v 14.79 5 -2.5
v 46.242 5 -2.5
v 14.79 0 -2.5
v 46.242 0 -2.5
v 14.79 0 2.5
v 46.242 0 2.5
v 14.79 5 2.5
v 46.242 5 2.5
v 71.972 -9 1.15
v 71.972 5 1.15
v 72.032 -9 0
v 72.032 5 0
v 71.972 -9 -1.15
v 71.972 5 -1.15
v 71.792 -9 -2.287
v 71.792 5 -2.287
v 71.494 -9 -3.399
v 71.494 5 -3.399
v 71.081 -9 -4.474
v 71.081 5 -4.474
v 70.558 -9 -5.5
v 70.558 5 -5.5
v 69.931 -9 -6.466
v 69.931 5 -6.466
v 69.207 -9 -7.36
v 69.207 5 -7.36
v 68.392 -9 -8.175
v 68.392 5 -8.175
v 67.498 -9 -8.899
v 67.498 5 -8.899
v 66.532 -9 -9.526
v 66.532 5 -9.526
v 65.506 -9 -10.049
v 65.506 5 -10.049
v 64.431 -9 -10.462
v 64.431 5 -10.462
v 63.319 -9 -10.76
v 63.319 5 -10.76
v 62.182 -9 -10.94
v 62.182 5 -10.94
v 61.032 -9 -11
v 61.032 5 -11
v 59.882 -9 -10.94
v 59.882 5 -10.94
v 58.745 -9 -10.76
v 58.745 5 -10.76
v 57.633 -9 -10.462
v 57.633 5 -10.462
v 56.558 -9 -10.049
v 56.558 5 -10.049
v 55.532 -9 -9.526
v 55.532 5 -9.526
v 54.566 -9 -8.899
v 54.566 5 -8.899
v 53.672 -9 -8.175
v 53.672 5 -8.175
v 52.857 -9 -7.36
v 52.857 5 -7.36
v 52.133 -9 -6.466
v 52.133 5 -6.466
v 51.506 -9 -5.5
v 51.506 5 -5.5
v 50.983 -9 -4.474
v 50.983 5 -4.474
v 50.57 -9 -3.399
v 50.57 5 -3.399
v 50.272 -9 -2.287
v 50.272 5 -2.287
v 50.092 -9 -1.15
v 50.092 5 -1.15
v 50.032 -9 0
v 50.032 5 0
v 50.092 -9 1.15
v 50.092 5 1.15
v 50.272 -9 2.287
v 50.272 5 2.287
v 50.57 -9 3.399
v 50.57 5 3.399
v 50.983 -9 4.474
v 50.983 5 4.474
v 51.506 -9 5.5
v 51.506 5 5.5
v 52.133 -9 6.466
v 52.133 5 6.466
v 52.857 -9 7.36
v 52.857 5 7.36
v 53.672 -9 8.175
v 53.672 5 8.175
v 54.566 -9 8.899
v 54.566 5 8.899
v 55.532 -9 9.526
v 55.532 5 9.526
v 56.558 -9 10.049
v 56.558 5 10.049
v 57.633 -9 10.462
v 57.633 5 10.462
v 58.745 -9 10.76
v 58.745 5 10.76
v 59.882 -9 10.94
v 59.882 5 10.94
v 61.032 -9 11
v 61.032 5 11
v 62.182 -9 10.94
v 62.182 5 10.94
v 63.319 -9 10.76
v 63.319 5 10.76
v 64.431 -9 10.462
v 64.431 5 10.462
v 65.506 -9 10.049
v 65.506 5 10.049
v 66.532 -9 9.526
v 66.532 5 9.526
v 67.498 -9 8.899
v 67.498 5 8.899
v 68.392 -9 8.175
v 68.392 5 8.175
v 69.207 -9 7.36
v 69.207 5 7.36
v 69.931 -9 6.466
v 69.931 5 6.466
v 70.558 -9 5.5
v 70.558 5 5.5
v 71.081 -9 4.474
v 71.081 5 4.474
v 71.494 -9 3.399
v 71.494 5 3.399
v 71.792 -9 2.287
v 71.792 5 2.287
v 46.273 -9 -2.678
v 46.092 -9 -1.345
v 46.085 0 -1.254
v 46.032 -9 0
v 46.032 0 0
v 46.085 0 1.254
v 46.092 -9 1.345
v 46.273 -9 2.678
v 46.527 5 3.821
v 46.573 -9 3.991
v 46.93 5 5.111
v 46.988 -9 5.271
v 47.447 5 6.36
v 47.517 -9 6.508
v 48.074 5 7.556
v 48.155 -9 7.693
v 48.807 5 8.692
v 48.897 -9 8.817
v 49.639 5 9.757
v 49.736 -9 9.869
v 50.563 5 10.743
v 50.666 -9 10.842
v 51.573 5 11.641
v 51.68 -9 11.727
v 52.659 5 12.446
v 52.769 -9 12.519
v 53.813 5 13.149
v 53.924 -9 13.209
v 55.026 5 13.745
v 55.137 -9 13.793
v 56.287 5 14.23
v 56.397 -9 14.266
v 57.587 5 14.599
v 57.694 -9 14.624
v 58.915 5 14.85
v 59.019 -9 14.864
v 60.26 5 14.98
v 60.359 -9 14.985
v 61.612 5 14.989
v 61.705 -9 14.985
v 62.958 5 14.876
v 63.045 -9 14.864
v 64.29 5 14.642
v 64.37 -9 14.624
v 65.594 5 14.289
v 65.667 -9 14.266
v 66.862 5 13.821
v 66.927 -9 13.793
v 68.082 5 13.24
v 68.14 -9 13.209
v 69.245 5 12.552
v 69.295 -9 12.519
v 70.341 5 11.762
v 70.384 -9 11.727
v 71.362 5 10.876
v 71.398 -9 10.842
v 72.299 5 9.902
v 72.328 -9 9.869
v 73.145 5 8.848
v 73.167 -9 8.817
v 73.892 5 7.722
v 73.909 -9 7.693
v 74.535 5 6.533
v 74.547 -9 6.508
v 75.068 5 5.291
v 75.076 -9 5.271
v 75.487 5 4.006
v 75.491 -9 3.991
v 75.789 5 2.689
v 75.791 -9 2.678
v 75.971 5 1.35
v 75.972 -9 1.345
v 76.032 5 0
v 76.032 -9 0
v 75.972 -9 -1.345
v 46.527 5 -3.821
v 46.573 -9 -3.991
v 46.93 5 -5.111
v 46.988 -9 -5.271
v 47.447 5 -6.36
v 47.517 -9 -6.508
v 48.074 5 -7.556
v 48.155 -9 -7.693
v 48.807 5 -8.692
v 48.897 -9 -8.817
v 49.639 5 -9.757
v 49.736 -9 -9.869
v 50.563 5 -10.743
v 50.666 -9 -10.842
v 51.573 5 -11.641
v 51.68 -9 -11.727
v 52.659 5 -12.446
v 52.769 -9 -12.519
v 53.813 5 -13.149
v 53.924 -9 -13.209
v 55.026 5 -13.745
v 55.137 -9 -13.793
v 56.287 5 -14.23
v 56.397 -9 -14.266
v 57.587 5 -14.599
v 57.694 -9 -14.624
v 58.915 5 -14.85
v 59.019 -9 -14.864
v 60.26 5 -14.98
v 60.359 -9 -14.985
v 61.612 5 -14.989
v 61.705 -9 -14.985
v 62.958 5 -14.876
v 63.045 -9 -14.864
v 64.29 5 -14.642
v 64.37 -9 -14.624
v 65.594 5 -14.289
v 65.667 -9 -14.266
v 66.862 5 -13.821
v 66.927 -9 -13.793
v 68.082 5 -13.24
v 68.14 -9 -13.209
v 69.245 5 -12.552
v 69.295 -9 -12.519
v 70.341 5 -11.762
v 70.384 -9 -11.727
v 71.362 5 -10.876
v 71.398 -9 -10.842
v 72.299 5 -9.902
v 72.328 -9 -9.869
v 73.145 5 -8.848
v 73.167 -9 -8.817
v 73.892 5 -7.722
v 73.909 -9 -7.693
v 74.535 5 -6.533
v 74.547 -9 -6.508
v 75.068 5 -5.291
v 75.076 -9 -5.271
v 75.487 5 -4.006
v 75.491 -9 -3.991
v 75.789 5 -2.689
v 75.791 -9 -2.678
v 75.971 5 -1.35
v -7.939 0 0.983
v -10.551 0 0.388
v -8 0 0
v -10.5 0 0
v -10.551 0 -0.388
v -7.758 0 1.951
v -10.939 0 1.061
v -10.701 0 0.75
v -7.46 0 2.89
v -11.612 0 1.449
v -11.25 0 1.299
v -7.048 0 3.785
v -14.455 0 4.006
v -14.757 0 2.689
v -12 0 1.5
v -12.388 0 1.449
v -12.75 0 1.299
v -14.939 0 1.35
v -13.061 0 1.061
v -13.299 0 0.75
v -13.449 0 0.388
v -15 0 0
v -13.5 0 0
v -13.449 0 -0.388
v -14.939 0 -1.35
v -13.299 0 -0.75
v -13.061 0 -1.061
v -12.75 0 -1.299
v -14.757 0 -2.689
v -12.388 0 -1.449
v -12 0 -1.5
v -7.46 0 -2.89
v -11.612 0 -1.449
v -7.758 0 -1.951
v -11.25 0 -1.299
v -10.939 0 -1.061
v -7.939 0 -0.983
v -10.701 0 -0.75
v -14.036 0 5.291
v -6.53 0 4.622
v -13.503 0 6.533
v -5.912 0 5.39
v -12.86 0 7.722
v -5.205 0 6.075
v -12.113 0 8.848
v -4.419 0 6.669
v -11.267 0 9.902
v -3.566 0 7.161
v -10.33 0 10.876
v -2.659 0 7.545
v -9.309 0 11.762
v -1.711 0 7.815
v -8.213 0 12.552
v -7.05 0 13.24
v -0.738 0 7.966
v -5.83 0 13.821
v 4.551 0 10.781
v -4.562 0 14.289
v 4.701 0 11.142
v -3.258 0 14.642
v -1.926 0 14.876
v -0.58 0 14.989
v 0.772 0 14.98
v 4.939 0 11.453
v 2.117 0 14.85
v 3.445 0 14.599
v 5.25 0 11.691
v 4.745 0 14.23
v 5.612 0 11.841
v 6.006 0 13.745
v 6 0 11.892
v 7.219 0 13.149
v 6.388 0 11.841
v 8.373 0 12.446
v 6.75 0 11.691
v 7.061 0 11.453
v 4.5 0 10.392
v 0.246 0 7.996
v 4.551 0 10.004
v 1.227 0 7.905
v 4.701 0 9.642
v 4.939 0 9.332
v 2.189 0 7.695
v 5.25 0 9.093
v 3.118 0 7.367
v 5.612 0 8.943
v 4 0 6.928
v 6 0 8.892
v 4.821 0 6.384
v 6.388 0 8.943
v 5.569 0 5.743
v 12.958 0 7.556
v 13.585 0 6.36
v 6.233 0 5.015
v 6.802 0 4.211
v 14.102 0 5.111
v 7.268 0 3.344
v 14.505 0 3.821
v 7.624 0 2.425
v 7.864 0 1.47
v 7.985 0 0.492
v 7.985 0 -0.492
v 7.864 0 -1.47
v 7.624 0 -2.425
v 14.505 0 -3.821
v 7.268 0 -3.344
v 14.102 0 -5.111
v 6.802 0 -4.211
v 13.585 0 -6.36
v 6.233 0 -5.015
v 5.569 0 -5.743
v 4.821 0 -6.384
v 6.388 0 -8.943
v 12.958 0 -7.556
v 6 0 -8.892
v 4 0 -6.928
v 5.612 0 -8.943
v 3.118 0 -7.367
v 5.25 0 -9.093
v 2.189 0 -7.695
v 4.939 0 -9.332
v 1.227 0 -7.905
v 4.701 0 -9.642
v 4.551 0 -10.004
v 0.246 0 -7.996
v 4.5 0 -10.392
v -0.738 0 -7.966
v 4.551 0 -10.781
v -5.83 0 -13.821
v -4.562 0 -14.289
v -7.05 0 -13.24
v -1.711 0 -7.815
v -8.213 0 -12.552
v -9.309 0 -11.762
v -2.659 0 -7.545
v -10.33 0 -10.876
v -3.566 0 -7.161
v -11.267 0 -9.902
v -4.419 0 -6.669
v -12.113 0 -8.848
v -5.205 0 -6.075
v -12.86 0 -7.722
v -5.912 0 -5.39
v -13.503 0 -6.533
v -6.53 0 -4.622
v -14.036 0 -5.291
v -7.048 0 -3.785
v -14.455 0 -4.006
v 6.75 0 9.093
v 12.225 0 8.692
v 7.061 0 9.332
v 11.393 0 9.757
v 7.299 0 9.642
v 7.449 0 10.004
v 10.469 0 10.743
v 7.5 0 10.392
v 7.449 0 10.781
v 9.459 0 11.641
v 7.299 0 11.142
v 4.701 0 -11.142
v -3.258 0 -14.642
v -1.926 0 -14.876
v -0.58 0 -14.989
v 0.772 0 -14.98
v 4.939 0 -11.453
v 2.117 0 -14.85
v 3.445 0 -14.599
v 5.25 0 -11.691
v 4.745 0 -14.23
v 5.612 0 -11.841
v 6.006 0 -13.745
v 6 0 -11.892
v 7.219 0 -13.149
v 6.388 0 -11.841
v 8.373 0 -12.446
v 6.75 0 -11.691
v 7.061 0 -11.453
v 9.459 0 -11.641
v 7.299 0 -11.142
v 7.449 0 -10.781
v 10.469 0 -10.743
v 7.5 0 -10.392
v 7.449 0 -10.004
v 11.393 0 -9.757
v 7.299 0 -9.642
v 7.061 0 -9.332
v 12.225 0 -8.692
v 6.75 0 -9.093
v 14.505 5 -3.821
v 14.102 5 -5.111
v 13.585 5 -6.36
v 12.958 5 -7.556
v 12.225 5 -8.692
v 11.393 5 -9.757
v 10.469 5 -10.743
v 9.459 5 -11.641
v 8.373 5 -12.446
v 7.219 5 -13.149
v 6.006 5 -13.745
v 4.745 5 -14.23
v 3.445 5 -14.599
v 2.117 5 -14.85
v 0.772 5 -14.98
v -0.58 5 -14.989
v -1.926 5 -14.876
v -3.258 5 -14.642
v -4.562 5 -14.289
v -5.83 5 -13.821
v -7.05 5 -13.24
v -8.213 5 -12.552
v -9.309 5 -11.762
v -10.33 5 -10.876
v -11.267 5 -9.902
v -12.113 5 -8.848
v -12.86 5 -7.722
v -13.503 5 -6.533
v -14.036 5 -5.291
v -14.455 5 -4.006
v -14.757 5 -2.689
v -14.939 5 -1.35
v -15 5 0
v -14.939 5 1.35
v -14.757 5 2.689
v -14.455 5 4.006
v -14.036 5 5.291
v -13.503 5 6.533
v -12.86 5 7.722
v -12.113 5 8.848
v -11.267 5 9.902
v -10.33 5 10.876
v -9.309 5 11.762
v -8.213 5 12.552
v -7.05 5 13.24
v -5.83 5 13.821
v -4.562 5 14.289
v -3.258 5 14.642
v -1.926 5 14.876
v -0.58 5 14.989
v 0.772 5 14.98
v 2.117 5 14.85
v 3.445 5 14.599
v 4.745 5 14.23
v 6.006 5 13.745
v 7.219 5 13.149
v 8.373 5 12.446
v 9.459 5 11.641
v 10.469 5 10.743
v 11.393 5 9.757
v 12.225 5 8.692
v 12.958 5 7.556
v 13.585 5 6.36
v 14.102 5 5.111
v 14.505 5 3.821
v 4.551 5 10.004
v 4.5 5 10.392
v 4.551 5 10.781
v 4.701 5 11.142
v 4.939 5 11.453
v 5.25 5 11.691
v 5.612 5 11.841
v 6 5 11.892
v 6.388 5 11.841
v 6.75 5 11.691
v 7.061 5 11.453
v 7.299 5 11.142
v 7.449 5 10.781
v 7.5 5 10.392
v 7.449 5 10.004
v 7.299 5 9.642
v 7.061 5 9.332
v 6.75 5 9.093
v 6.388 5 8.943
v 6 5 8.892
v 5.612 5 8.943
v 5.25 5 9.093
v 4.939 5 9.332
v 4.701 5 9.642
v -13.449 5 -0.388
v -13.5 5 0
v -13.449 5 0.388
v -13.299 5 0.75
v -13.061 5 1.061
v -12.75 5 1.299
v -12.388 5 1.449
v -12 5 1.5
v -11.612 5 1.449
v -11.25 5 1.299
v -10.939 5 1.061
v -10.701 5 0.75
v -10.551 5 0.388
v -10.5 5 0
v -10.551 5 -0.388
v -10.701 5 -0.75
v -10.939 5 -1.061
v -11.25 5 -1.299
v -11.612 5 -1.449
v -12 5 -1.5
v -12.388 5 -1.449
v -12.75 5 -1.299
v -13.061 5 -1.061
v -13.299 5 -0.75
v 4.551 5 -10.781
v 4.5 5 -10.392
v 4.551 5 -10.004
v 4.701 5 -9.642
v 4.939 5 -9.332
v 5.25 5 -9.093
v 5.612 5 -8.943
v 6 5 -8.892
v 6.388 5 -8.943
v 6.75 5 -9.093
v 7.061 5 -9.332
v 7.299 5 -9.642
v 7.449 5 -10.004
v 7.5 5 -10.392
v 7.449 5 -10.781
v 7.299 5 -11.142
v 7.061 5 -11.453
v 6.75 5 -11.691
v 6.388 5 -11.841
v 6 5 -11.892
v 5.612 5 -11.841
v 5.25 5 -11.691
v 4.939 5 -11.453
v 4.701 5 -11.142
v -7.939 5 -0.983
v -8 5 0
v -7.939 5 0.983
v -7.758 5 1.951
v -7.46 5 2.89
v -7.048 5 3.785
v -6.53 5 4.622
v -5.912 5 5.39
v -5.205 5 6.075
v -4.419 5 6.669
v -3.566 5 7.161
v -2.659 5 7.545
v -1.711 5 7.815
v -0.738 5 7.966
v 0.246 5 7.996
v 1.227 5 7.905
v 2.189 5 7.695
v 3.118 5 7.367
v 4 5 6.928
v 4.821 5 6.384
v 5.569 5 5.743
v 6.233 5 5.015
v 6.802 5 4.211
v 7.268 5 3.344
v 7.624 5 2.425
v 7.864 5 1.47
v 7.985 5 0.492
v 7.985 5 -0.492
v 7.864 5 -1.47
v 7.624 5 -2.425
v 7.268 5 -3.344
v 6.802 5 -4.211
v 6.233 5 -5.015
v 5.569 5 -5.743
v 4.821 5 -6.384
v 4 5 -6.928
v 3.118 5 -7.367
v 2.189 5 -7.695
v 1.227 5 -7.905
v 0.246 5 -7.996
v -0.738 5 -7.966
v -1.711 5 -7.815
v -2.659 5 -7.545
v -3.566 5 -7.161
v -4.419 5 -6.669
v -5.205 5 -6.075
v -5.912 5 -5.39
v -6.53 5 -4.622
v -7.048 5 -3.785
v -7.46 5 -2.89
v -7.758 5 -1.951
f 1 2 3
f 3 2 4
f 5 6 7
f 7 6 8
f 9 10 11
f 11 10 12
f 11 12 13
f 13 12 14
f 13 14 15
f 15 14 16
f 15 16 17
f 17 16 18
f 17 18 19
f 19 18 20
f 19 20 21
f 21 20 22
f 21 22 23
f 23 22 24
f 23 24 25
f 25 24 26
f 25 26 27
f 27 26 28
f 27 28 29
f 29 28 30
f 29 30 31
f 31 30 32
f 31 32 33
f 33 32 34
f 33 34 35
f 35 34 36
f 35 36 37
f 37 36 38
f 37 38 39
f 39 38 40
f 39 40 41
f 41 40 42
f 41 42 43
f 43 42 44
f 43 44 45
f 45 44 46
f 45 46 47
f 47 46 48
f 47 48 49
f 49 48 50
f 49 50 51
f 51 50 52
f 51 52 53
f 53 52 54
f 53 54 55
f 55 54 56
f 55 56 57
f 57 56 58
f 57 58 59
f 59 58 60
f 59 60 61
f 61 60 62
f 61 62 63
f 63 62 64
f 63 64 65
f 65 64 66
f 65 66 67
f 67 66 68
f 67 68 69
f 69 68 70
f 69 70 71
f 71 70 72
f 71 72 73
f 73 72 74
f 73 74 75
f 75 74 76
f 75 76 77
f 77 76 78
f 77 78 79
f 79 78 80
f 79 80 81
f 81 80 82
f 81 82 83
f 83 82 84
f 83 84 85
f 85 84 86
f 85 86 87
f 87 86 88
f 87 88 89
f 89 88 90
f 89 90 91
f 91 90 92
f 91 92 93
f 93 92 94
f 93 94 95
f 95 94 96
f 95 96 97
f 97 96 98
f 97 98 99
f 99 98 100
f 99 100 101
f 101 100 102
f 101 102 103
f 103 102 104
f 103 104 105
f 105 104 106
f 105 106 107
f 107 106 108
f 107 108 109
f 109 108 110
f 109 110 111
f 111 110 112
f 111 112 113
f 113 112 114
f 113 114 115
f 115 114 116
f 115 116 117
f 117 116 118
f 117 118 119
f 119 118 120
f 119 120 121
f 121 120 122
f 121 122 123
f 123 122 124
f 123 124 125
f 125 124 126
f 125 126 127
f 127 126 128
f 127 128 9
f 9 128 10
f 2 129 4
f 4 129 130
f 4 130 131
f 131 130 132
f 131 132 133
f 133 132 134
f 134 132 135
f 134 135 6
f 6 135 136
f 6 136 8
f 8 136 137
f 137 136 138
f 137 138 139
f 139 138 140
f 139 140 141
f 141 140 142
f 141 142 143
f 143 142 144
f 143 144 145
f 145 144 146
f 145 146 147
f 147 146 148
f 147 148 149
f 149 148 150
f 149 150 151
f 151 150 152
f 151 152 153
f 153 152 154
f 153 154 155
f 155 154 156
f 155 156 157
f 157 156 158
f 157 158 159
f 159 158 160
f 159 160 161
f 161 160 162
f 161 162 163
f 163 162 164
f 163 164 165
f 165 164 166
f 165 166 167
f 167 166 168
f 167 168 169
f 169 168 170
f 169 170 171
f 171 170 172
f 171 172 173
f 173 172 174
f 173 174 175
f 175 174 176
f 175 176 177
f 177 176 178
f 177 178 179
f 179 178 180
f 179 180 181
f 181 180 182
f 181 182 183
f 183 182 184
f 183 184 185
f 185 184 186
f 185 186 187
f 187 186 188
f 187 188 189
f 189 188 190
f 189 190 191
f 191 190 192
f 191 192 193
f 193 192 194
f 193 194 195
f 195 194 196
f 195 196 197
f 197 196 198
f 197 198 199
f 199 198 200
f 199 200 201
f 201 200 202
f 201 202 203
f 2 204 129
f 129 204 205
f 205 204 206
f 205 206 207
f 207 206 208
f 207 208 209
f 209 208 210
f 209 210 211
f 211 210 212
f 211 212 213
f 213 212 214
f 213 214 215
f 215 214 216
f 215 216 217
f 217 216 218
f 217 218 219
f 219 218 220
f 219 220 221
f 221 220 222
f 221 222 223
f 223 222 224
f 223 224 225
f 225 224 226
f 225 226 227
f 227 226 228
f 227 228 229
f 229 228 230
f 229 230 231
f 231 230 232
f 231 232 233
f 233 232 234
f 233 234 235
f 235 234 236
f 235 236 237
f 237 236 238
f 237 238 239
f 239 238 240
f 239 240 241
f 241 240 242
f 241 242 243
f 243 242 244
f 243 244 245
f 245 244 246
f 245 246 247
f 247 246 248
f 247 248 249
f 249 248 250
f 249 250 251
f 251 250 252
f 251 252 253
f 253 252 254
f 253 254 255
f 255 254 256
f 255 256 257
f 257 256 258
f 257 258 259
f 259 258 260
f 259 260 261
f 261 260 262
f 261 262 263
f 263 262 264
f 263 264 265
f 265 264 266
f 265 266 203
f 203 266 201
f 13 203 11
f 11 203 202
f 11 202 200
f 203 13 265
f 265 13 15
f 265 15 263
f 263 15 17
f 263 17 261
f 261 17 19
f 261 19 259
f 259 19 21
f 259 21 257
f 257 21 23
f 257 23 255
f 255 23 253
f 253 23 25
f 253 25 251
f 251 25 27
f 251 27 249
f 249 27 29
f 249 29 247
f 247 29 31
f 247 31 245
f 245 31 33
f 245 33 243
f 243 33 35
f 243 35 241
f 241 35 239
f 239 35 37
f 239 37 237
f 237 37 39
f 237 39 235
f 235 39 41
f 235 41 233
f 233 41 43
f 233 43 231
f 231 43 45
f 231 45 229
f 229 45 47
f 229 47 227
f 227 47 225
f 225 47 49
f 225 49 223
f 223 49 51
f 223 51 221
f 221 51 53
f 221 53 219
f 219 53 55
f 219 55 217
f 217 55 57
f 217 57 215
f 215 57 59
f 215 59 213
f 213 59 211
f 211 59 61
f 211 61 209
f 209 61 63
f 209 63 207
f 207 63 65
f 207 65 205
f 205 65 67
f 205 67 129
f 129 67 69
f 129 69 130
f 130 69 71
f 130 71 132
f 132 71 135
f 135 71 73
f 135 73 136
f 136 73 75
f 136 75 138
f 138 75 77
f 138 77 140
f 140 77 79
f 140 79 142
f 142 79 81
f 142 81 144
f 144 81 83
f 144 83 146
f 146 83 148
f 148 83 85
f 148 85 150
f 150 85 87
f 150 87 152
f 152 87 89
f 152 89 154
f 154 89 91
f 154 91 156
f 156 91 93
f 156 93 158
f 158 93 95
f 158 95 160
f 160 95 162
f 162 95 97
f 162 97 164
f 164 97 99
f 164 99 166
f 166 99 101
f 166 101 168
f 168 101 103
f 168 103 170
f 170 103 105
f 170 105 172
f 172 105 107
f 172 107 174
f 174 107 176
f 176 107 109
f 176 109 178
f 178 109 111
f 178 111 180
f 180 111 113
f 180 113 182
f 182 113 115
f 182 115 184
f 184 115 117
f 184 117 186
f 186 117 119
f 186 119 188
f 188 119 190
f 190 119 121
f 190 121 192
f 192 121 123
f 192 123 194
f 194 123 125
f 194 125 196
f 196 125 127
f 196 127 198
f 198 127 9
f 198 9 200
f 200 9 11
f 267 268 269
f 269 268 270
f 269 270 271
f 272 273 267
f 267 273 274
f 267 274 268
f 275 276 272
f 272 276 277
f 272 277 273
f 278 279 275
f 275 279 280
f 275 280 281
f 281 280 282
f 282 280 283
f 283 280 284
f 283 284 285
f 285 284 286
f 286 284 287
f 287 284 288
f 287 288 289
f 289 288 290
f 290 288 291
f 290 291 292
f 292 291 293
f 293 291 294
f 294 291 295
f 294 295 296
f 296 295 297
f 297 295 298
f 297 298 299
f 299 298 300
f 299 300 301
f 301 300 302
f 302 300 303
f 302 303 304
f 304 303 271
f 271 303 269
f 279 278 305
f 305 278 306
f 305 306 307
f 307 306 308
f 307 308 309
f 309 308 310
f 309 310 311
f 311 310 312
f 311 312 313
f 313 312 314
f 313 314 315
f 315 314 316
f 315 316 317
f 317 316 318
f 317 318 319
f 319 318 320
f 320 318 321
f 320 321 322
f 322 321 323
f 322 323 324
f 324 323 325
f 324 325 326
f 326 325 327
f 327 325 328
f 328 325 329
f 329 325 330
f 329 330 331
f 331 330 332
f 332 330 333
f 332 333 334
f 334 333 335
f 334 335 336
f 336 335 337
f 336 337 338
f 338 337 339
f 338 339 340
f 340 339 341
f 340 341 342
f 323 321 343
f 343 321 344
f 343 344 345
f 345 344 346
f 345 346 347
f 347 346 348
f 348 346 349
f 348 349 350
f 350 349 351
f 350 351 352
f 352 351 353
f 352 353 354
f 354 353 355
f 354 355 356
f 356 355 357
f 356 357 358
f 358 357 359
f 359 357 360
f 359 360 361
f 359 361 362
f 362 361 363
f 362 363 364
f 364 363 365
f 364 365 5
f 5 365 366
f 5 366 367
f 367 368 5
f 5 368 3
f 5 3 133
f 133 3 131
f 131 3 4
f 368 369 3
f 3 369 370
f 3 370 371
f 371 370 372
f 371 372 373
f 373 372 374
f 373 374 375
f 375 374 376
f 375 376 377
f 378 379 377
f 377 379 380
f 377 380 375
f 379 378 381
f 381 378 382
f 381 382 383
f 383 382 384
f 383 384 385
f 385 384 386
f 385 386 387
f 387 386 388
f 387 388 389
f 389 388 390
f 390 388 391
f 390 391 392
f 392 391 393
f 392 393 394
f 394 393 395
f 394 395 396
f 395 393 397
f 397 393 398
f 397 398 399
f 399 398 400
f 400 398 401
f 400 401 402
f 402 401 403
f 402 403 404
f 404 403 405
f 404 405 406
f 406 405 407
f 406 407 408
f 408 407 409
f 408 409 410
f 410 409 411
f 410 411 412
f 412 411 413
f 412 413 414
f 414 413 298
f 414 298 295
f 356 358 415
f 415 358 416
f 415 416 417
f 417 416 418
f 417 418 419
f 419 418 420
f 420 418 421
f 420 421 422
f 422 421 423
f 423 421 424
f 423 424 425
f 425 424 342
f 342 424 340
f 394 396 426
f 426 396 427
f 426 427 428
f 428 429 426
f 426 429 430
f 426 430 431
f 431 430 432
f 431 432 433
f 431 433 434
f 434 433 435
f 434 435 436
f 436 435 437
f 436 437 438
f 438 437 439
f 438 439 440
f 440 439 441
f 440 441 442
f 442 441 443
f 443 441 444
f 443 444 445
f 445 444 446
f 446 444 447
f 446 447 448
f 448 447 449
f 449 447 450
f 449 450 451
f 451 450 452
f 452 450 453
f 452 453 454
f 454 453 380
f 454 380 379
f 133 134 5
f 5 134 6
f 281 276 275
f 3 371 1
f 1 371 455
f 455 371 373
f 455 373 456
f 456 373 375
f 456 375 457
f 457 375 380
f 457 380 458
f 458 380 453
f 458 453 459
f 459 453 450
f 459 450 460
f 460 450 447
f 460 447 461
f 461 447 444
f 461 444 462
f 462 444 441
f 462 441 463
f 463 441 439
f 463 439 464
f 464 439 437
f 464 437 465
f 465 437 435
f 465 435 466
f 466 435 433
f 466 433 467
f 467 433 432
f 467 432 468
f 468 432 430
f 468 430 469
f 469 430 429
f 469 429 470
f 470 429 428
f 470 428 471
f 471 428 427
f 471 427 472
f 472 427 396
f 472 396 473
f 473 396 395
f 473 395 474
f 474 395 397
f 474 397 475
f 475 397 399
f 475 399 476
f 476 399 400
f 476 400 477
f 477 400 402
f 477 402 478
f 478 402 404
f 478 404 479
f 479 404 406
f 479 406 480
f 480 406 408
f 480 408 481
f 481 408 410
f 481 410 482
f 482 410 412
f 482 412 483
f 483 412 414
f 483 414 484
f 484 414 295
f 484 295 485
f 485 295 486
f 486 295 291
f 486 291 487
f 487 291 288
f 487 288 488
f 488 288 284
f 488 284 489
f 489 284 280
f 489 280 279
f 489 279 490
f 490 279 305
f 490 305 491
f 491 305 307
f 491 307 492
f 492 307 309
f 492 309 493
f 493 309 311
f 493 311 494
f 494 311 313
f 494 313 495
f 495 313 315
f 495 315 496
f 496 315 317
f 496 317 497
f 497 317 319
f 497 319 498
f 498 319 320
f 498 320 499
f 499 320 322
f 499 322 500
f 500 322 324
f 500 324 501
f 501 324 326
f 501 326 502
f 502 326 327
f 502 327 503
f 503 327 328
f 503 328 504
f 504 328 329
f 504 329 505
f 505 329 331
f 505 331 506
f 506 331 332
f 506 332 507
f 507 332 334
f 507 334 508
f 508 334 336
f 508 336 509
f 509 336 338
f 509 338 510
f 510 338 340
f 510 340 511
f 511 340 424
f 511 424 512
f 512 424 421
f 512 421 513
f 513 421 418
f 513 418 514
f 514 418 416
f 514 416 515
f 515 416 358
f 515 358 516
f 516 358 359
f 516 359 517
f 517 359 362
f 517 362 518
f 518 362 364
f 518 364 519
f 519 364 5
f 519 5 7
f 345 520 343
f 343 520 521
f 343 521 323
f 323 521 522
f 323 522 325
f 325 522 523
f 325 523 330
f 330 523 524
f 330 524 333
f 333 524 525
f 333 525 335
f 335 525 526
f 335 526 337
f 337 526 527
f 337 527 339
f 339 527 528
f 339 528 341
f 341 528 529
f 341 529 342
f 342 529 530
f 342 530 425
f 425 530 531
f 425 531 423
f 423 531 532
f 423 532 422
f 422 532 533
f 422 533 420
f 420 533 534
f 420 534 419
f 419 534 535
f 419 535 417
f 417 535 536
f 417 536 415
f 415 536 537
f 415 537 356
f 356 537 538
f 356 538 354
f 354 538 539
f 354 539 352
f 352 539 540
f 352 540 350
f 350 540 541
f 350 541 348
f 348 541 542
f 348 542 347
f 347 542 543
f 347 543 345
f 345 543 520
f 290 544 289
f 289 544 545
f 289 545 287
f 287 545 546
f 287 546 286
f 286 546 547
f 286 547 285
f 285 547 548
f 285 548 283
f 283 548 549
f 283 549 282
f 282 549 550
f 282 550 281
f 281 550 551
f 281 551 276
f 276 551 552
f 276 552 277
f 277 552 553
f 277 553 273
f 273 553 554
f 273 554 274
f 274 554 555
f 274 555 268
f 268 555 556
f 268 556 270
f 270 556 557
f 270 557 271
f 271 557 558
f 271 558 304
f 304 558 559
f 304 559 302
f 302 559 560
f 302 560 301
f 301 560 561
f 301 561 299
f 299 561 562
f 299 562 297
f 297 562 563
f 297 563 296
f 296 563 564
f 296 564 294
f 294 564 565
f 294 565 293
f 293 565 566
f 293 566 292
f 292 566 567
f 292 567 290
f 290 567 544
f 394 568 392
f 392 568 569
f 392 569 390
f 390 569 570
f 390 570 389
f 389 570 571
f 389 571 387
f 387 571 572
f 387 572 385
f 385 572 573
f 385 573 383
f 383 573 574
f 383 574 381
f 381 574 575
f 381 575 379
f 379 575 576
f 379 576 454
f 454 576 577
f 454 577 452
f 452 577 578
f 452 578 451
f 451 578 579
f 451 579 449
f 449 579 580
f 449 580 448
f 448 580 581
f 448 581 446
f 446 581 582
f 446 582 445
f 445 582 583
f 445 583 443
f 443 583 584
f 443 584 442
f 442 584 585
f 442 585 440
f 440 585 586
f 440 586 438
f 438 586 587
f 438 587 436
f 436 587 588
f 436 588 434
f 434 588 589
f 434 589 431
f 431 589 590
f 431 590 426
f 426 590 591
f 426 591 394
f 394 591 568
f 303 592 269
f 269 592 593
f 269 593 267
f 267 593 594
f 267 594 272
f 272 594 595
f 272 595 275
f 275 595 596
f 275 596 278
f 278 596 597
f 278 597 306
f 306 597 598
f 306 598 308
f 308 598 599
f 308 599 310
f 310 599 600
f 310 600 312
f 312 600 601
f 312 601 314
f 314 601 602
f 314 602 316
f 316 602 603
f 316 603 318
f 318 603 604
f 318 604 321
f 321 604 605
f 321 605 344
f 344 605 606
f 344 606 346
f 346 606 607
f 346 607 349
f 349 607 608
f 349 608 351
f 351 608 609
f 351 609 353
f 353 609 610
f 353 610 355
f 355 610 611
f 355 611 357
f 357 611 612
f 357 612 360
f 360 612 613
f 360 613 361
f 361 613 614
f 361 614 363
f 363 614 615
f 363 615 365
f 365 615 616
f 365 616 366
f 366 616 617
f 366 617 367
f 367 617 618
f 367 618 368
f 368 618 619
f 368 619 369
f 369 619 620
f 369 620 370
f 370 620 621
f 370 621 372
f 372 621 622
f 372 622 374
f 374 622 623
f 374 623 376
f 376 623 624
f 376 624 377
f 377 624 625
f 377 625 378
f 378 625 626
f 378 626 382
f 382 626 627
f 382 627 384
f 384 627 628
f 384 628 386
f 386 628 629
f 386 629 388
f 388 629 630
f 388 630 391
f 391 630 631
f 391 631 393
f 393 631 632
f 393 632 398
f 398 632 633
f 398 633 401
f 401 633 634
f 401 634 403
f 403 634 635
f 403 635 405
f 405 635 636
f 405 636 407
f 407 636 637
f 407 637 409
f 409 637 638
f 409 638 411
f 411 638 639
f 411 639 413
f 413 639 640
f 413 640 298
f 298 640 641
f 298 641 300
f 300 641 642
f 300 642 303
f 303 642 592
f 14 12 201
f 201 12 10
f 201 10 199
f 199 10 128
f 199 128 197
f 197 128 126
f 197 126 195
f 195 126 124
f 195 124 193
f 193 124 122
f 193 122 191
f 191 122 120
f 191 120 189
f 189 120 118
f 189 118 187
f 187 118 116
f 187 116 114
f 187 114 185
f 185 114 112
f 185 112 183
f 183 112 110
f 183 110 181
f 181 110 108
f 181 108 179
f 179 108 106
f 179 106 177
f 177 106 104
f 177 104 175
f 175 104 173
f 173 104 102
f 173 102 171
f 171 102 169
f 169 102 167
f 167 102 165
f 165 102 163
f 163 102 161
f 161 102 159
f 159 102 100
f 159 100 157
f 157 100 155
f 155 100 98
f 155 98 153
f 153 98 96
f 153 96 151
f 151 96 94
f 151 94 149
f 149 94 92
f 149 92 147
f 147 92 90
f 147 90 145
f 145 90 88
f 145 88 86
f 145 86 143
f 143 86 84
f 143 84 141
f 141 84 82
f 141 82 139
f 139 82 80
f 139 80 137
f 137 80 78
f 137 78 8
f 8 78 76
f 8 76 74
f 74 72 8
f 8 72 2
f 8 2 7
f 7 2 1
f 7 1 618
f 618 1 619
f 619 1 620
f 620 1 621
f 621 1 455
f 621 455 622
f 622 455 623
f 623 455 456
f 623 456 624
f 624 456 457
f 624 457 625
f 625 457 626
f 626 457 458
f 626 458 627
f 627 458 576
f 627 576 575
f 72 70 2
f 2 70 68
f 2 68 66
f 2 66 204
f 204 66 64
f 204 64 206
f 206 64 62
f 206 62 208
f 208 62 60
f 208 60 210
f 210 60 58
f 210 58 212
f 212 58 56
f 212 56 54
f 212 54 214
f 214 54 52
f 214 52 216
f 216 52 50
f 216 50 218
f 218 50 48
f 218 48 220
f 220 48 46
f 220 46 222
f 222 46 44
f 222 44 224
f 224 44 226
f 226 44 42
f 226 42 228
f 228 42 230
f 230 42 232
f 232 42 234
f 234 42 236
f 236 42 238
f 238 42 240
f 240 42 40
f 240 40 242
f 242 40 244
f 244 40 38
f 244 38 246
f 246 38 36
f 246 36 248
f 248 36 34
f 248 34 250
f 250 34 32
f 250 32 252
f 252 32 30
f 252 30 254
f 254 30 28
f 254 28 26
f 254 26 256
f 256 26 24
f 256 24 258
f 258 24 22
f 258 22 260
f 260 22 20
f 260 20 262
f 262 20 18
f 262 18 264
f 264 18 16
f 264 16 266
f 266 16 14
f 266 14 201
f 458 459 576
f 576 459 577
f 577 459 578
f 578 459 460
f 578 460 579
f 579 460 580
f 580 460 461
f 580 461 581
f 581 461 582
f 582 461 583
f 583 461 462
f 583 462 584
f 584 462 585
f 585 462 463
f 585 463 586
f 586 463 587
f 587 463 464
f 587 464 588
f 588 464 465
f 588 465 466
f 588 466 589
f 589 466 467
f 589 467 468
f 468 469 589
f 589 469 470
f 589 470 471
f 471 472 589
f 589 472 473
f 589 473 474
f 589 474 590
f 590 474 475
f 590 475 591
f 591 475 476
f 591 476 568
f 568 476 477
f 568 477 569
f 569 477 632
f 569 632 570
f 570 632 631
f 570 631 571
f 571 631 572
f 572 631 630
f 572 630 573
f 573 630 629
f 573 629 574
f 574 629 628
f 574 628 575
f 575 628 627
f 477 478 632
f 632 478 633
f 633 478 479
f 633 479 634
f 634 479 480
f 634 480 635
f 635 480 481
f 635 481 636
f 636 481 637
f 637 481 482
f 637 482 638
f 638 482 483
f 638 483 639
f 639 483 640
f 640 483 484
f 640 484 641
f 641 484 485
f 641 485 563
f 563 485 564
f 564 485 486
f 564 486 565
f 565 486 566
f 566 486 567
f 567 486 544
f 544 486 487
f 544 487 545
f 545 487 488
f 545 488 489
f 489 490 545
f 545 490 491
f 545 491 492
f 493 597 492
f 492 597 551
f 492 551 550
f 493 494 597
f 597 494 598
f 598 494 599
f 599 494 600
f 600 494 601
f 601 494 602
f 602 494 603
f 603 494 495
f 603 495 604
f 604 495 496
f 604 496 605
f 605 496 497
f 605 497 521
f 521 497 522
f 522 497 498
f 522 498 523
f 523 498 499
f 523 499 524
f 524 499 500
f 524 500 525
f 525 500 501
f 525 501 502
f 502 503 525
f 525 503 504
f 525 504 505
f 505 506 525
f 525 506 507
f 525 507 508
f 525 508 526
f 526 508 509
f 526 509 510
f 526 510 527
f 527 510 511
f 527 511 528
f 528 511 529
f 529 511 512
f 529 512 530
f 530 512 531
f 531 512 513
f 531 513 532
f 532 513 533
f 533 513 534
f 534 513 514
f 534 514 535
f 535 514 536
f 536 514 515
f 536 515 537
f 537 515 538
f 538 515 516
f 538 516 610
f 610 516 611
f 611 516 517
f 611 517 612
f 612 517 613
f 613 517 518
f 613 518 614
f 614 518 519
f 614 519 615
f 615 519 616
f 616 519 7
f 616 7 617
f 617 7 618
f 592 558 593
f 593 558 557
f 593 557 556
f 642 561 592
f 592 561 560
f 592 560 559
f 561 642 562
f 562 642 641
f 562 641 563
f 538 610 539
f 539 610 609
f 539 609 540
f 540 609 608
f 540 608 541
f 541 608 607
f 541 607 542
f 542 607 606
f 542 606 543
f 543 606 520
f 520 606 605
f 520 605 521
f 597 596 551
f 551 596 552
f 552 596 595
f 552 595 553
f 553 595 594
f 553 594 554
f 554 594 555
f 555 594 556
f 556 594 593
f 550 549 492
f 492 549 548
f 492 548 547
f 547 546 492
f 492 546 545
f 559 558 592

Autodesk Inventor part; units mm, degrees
ref_plane "YZ Plane" through (0, 0, 0) normal (1, 0, 0) x (0, 1, 0)
ref_plane "XZ Plane" through (0, 0, 0) normal (0, 1, 0) x (-1, 0, 0)
ref_plane "XY Plane" through (0, 0, 0) normal (0, 0, 1) x (1, 0, 0)
sketch "Esquisse1" plane through (0, 0, 0) normal (0, 1, 0) x (-1, 0, 0)
  circle A0 centre (0, 0) radius 15
  circle A1 centre (0, 0) radius 8
  dimension "d0" = 30
  dimension "d1" = 16
extrude "Extrusion1" add sketch "Esquisse1" along normal blind 5
sketch "Esquisse2" plane through (0, 5, 0) normal (0, 1, 0) x (1, 0, 0)
  circle A0 centre (0, 0) radius 15 projected
  point P0 (-12, 0)
  point P1 (6, -10.3923)
  point P2 (6, 10.3923)
  dimension "d4" = 12
  dimension "d7" = 360
hole "Perçage1" at (-12, 5, 0) at (6, 5, 10.3923) at (6, 5, -10.3923) direction (0, -1, 0) diameter 3 depth 8 tip angle 118
sketch "Esquisse3" plane through (0, 5, 0) normal (0, 1, 0) x (1, 0, 0)
  circle A0 centre (61.032, 0) radius 11
  circle A1 centre (61.032, 0) radius 15
  point P0 (0, 0)
  dimension "d16" = 61.032
  dimension "d17" = 22
  dimension "d18" = 30
extrude "Extrusion2" add sketch "Esquisse3" against normal blind 14
sketch "Esquisse4" plane through (0, 5, 0) normal (0, 1, 0) x (1, 0, 0)
  circle A0 centre (0, 0) radius 8 projected
  line L0 (8, 0) -> (48.6, 0)
  line L1 (48.6, 0) -> (48.6, 2.5)
  line L2 (48.6, 2.5) -> (8, 2.5)
  line L3 (8, 2.5) -> (8, 0)
  line L4 (8, 0) -> (48.6, 0)
  line L5 (48.6, 0) -> (48.6, -2.5)
  line L6 (48.6, -2.5) -> (8, -2.5)
  line L7 (8, -2.5) -> (8, 0)
  dimension "d21" = 2.5
  dimension "d22" = 2.5
  dimension "d23" = 40.6
extrude "Extrusion3" add sketch "Esquisse4" against normal blind 5 contours L3 L2 L1 L0 | L0 L5 L6 L7
properties part number "BarreCodeuseV2"
